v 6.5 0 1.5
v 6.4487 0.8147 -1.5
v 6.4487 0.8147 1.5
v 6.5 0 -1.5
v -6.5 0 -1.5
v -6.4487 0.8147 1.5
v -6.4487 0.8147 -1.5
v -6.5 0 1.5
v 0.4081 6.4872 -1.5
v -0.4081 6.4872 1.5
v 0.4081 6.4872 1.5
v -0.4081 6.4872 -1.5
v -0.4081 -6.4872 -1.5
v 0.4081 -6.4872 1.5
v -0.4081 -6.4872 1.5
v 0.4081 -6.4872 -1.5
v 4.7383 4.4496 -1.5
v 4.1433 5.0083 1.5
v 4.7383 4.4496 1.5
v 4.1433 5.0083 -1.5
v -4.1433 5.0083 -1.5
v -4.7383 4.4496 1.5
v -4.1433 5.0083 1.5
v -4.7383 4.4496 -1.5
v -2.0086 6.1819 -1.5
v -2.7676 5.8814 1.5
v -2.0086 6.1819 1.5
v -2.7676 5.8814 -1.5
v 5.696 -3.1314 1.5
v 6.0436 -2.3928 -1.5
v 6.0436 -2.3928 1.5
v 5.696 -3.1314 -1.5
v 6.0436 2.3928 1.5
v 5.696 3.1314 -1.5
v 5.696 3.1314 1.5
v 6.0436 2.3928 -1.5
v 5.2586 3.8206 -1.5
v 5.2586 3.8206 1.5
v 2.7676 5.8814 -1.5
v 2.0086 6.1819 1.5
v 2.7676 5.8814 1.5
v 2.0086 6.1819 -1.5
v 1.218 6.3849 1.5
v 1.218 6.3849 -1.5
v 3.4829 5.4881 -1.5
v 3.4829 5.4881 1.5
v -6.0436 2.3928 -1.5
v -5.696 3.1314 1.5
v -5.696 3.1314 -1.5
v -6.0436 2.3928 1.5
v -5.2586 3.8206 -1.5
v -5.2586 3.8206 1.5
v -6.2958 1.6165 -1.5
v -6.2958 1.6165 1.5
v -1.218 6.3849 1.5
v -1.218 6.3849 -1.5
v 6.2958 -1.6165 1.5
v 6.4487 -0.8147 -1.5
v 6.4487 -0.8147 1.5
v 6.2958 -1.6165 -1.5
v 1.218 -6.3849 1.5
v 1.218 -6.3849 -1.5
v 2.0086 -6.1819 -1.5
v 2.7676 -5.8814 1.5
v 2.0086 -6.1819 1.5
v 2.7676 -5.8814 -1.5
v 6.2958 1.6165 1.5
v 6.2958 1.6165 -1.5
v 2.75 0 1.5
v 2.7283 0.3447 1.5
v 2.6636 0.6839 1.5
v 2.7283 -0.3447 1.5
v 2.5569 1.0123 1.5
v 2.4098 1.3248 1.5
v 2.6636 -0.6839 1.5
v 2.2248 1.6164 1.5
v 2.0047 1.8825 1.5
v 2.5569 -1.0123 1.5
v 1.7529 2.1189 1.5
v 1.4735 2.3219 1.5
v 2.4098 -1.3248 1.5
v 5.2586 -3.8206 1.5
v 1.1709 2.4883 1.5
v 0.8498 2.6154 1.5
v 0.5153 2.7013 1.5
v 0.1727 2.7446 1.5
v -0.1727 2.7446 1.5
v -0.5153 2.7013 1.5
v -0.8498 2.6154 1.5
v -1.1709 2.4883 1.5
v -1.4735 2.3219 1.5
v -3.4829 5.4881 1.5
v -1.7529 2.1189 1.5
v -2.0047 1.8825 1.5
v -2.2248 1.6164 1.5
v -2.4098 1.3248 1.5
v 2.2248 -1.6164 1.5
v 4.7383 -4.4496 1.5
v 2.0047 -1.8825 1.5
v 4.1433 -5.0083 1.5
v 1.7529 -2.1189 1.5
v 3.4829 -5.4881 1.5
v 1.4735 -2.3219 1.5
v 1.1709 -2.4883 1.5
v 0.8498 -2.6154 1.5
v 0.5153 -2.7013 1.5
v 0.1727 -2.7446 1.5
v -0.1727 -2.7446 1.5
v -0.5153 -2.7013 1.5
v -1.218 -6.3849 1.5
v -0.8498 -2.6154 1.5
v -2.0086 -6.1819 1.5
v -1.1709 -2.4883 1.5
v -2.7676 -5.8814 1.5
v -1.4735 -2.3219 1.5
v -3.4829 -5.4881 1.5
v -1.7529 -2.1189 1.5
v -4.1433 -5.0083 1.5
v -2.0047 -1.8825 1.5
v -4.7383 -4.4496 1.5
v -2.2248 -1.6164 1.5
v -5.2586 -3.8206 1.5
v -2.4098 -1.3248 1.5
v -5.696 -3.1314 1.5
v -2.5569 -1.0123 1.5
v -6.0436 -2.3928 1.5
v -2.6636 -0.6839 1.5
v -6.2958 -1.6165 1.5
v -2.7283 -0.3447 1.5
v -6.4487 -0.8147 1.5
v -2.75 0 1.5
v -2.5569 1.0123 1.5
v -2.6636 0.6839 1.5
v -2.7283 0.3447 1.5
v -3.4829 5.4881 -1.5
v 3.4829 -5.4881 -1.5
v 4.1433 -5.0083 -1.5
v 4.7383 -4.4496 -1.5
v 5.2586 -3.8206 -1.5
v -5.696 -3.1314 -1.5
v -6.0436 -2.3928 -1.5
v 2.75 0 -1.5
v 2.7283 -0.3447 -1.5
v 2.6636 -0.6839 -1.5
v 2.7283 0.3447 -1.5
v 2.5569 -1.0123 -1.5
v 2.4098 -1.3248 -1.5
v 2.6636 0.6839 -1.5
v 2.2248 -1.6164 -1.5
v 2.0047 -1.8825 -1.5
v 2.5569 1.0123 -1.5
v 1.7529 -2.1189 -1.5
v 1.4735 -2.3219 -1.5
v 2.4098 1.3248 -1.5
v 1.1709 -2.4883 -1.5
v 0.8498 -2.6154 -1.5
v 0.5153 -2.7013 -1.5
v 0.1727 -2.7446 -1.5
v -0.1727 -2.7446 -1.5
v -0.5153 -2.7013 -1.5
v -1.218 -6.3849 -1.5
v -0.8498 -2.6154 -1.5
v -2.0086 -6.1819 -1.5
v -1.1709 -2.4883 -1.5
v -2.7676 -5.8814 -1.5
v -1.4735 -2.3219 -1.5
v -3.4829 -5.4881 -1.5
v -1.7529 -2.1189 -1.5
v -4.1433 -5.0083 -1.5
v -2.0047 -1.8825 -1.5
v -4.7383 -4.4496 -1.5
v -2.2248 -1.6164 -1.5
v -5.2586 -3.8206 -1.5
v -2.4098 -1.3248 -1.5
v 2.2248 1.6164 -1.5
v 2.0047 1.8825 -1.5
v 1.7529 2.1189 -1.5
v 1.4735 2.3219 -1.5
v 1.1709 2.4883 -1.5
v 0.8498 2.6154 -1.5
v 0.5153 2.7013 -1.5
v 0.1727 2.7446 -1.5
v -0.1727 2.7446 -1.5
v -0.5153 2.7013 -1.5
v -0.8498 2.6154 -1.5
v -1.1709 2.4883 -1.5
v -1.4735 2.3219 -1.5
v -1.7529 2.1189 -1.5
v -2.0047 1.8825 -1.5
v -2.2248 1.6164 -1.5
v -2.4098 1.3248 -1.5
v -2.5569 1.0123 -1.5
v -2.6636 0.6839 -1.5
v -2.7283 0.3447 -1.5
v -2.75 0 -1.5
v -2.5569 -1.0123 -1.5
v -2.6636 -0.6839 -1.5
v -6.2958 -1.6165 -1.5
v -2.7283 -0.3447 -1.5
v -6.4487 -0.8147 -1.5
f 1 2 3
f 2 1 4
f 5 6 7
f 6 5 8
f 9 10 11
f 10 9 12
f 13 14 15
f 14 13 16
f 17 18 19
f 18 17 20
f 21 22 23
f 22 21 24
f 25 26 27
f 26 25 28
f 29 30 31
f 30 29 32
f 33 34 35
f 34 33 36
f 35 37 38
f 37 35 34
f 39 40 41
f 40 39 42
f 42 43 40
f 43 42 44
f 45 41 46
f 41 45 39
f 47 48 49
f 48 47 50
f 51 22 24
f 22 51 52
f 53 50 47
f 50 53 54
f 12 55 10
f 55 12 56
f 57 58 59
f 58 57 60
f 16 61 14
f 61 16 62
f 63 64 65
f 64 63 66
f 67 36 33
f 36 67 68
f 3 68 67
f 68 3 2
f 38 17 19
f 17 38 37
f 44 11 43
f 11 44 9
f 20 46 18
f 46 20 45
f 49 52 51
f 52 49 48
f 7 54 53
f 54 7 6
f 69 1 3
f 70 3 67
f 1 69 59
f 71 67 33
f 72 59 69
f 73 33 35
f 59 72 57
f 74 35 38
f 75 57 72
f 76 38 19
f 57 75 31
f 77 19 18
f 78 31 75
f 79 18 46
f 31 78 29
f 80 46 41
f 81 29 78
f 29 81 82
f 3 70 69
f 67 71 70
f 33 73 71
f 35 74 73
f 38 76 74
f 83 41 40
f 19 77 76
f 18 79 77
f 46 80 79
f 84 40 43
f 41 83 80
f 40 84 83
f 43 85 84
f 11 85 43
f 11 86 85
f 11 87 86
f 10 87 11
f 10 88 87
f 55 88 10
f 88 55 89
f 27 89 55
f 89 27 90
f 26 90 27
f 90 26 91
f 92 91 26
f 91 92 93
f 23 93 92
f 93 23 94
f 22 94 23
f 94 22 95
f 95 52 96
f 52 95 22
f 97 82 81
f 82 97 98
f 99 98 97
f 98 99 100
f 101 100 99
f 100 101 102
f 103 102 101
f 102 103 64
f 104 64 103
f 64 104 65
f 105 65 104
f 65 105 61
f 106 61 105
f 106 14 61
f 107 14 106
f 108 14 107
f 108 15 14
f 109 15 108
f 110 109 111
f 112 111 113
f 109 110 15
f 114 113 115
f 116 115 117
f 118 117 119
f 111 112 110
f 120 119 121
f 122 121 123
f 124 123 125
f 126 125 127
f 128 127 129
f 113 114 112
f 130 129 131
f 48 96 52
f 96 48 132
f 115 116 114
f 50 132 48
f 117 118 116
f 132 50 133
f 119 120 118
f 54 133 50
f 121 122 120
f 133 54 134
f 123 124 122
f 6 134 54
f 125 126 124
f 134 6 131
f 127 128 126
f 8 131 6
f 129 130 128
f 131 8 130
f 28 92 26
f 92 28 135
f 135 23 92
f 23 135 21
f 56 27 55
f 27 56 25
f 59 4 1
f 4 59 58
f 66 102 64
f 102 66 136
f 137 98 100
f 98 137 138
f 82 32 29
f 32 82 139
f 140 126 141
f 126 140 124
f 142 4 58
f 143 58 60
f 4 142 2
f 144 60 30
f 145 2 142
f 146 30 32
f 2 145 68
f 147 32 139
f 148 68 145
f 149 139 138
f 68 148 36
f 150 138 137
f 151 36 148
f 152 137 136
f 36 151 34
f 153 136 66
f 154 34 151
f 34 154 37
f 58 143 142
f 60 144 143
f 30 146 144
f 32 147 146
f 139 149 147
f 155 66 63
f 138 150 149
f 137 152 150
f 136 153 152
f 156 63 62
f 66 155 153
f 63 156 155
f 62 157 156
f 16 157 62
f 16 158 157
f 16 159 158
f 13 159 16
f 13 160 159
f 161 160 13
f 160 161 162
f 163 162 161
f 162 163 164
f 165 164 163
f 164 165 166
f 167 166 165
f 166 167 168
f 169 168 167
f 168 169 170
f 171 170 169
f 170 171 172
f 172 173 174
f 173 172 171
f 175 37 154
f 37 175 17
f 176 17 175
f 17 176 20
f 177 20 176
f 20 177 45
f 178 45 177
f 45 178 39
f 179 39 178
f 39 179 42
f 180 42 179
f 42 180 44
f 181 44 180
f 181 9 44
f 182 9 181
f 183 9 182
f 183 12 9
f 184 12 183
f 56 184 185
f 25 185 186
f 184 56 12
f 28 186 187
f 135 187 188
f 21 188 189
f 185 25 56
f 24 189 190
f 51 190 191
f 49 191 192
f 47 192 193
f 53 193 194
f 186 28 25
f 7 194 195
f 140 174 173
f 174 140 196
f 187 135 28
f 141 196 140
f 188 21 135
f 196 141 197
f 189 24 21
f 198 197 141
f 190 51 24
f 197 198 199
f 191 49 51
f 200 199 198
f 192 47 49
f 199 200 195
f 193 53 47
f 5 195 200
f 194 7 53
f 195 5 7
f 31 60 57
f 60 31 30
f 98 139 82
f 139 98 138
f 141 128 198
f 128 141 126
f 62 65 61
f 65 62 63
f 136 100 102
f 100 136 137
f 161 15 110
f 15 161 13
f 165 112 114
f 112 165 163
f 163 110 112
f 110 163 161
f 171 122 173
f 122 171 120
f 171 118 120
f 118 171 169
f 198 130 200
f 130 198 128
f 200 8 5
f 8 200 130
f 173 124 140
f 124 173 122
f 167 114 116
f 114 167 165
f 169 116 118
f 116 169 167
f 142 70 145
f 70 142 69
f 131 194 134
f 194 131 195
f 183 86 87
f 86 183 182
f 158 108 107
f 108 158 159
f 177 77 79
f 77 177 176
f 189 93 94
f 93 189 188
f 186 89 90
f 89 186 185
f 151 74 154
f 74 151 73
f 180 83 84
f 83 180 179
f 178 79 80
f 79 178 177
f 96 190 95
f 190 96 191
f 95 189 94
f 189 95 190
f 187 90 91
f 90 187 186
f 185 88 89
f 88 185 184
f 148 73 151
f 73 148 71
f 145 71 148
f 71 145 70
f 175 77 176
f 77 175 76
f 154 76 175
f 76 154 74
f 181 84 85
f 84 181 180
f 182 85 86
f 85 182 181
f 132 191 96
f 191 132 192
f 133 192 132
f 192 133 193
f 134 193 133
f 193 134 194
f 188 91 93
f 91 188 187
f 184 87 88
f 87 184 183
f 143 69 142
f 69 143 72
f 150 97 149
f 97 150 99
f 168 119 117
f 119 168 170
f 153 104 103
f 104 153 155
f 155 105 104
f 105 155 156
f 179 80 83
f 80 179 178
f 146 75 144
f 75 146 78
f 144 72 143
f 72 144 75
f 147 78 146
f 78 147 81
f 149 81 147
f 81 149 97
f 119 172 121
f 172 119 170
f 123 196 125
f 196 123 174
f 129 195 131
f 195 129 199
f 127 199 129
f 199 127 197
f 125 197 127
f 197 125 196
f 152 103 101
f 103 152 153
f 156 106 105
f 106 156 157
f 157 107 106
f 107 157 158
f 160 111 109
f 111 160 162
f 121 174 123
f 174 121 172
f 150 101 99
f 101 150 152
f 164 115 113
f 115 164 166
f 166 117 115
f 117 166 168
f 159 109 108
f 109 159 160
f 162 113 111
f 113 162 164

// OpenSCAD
$fn = 50;


difference() {
	union() {
		translate(v = [0, 0, -1.5000000000]) {
			cylinder(h = 3, r = 6.5000000000);
		}
	}
	union() {
		translate(v = [0, 0, -100.0000000000]) {
			cylinder(h = 200, r = 2.7500000000);
		}
	}
}
